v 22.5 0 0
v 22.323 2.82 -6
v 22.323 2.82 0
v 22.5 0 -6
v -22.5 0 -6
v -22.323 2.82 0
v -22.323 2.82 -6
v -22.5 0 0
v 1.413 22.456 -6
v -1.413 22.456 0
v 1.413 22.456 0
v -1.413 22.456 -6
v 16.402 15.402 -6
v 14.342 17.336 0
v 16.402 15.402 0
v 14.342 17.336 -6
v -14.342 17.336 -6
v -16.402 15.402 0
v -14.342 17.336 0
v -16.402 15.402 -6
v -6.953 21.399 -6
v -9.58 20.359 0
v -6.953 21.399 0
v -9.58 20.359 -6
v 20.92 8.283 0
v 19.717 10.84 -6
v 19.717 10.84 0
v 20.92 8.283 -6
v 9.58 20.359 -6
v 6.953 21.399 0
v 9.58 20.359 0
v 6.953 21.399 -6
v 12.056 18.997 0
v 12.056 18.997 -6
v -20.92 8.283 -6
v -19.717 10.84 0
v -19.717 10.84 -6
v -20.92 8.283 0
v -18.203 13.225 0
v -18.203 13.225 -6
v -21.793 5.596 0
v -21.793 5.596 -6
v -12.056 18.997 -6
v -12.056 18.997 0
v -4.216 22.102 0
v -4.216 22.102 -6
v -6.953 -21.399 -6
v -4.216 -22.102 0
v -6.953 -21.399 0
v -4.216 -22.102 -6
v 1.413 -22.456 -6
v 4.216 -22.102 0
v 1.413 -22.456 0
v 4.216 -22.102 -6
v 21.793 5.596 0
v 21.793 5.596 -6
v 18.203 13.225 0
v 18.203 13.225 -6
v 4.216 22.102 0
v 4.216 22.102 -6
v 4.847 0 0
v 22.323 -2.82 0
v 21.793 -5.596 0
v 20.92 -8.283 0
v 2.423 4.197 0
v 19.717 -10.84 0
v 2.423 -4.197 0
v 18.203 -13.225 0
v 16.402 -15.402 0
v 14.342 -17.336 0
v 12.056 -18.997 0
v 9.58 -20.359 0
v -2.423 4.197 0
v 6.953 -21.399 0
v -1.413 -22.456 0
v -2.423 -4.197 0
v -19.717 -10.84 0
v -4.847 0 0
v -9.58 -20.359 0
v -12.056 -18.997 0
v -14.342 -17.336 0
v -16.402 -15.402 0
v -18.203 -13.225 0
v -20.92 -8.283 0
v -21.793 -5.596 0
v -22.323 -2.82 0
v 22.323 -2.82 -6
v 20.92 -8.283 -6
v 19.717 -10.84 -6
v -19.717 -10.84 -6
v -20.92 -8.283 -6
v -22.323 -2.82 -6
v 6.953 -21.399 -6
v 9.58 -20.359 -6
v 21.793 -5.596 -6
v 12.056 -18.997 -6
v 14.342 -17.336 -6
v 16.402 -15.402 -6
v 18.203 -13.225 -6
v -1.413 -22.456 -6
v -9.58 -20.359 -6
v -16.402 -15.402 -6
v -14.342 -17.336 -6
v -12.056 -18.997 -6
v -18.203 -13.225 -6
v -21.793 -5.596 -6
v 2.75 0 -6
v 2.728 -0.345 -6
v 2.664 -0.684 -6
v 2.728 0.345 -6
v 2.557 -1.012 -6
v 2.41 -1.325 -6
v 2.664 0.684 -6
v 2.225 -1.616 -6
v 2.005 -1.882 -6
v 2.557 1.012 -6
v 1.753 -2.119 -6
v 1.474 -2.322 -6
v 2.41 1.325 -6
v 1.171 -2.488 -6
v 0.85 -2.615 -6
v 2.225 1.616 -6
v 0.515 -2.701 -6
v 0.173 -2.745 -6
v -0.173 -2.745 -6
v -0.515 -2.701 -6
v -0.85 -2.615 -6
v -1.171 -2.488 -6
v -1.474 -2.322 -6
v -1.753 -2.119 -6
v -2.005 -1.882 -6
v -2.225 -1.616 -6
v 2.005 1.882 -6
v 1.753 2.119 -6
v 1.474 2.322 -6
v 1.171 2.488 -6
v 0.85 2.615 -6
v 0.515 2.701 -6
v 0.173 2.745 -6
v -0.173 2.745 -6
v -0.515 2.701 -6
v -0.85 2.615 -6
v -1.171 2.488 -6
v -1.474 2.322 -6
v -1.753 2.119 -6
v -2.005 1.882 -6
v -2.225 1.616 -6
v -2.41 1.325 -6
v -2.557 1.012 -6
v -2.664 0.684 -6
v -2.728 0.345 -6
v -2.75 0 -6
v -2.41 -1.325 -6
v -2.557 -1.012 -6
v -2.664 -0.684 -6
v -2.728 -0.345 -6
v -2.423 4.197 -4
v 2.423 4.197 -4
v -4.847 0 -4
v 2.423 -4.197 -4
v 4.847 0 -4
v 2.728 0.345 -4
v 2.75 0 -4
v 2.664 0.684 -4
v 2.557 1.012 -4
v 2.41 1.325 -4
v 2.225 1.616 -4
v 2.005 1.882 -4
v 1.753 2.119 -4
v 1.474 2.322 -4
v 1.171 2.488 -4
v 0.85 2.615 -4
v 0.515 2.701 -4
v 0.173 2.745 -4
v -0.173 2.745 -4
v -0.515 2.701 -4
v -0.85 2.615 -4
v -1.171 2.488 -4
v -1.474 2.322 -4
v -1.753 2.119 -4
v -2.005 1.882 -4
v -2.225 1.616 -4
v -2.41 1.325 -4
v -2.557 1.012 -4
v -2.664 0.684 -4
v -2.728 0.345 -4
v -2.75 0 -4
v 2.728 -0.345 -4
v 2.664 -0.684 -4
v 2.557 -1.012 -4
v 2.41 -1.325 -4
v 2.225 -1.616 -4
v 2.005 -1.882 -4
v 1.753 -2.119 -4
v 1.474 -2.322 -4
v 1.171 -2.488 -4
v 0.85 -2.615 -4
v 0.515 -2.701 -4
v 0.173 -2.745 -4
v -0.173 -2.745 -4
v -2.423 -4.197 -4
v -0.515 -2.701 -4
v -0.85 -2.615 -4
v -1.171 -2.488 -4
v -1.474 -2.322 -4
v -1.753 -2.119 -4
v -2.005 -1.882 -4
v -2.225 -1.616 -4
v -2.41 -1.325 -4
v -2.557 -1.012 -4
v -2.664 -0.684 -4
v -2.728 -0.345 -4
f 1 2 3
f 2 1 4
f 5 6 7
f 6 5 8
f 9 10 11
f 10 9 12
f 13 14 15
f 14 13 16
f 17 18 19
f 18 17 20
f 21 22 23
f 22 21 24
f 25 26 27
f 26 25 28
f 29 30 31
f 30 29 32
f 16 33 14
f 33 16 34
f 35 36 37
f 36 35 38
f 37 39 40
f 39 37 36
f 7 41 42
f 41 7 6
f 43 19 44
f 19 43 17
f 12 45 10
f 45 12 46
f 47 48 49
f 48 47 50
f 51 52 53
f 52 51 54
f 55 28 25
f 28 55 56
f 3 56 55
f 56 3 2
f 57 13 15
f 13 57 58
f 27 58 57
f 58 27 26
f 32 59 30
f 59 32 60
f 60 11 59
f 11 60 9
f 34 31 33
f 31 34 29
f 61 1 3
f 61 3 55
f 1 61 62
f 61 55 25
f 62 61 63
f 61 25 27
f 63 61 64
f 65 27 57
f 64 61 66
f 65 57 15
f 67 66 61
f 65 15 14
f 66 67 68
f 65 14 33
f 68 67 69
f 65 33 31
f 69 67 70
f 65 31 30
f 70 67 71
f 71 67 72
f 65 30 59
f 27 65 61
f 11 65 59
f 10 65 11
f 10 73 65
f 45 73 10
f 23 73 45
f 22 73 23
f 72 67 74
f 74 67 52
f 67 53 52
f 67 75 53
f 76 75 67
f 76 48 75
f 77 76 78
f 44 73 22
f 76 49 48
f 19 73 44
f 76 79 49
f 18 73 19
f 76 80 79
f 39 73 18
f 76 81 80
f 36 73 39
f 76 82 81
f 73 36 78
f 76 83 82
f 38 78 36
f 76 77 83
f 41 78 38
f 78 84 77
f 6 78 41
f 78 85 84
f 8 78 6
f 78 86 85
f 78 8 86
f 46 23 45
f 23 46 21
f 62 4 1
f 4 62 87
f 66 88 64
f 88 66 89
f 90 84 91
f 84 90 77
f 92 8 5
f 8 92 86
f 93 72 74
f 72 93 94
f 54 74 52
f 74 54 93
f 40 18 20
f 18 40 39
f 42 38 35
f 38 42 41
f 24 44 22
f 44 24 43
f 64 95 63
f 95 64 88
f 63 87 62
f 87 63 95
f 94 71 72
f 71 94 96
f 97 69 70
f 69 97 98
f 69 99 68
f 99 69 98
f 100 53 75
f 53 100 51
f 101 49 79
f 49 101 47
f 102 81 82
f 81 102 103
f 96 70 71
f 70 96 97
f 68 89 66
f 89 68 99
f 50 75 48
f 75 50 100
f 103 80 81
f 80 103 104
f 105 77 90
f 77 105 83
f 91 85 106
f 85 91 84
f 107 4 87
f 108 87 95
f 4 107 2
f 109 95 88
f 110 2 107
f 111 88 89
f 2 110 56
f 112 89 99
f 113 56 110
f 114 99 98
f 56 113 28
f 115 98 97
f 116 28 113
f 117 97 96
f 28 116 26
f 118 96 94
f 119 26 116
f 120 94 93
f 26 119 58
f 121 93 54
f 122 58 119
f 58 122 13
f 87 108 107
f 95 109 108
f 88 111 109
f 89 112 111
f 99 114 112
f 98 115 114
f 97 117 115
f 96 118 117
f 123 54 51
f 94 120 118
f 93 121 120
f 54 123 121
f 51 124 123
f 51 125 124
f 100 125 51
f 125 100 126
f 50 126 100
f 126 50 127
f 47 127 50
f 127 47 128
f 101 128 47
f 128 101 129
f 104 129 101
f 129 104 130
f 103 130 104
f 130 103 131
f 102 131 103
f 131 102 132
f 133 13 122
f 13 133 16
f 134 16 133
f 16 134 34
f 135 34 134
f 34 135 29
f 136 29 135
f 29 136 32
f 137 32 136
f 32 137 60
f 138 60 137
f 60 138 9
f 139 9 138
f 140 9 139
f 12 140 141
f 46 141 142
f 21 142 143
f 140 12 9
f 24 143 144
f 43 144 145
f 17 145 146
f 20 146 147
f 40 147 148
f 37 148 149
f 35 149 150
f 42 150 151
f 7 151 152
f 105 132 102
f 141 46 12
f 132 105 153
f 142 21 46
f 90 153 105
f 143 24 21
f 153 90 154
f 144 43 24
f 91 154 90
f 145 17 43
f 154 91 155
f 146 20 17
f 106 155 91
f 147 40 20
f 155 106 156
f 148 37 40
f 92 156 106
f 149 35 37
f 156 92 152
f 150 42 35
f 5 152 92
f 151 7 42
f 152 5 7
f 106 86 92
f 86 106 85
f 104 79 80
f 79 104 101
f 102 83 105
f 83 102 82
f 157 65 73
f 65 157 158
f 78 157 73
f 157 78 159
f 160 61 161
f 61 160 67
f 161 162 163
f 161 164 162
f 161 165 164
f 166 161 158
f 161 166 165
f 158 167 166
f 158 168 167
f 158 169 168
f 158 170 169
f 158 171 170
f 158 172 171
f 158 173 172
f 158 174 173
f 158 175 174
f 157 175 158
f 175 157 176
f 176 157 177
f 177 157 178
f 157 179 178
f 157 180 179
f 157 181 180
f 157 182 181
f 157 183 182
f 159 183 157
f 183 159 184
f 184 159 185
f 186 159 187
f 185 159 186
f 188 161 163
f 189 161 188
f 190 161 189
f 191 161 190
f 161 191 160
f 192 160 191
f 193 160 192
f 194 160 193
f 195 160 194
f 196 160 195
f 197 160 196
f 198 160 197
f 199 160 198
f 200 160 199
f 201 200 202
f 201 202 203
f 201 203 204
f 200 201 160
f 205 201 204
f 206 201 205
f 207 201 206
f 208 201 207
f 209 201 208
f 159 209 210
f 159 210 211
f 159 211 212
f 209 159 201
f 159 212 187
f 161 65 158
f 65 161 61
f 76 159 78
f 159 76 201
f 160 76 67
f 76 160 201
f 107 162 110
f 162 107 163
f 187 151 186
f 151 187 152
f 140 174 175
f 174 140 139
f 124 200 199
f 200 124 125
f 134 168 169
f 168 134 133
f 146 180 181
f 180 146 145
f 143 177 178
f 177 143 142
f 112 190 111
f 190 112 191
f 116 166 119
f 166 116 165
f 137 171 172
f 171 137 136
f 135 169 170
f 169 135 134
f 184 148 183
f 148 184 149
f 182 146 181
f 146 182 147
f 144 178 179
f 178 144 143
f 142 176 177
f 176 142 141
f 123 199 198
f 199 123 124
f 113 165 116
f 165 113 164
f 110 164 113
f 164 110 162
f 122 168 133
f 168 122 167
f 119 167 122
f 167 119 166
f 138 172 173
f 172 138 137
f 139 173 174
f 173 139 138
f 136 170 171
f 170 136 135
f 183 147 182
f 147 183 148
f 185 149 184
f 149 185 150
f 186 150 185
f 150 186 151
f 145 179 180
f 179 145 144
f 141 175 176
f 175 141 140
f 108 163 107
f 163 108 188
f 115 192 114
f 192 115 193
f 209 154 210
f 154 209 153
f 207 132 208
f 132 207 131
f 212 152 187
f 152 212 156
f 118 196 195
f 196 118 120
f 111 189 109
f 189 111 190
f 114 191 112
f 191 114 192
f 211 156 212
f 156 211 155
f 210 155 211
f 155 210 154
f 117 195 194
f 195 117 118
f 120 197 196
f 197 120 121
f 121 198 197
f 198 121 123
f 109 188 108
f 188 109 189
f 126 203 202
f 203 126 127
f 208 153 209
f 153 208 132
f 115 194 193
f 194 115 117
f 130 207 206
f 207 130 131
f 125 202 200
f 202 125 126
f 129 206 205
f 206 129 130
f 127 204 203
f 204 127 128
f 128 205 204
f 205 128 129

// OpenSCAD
$fn = 50;


difference() {
	union() {
		translate(v = [0, 0, -6.0000000000]) {
			cylinder(h = 6.0000000000, r = 22.5000000000);
		}
		translate(v = [0, 0, -4.5000000000]) {
			cylinder(h = 4.5000000000, r = 2.8750000000);
		}
	}
	union() {
		translate(v = [0, 0, 0]) {
			rotate(a = [0, 0, 0]) {
				difference() {
					union() {
						translate(v = [0, 0, -4]) {
							#linear_extrude(height = 4) {
								polygon(points = [[4.8468000000, 0.0000000000], [2.4234000000, 4.1974519271], [-2.4234000000, 4.1974519271], [-4.8468000000, 0.0000000000], [-2.4234000000, -4.1974519271], [2.4234000000, -4.1974519271]]);
							}
						}
					}
					union();
				}
			}
		}
		#translate(v = [0, 0, -100.0000000000]) {
			cylinder(h = 200, r = 2.7500000000);
		}
	}
}
